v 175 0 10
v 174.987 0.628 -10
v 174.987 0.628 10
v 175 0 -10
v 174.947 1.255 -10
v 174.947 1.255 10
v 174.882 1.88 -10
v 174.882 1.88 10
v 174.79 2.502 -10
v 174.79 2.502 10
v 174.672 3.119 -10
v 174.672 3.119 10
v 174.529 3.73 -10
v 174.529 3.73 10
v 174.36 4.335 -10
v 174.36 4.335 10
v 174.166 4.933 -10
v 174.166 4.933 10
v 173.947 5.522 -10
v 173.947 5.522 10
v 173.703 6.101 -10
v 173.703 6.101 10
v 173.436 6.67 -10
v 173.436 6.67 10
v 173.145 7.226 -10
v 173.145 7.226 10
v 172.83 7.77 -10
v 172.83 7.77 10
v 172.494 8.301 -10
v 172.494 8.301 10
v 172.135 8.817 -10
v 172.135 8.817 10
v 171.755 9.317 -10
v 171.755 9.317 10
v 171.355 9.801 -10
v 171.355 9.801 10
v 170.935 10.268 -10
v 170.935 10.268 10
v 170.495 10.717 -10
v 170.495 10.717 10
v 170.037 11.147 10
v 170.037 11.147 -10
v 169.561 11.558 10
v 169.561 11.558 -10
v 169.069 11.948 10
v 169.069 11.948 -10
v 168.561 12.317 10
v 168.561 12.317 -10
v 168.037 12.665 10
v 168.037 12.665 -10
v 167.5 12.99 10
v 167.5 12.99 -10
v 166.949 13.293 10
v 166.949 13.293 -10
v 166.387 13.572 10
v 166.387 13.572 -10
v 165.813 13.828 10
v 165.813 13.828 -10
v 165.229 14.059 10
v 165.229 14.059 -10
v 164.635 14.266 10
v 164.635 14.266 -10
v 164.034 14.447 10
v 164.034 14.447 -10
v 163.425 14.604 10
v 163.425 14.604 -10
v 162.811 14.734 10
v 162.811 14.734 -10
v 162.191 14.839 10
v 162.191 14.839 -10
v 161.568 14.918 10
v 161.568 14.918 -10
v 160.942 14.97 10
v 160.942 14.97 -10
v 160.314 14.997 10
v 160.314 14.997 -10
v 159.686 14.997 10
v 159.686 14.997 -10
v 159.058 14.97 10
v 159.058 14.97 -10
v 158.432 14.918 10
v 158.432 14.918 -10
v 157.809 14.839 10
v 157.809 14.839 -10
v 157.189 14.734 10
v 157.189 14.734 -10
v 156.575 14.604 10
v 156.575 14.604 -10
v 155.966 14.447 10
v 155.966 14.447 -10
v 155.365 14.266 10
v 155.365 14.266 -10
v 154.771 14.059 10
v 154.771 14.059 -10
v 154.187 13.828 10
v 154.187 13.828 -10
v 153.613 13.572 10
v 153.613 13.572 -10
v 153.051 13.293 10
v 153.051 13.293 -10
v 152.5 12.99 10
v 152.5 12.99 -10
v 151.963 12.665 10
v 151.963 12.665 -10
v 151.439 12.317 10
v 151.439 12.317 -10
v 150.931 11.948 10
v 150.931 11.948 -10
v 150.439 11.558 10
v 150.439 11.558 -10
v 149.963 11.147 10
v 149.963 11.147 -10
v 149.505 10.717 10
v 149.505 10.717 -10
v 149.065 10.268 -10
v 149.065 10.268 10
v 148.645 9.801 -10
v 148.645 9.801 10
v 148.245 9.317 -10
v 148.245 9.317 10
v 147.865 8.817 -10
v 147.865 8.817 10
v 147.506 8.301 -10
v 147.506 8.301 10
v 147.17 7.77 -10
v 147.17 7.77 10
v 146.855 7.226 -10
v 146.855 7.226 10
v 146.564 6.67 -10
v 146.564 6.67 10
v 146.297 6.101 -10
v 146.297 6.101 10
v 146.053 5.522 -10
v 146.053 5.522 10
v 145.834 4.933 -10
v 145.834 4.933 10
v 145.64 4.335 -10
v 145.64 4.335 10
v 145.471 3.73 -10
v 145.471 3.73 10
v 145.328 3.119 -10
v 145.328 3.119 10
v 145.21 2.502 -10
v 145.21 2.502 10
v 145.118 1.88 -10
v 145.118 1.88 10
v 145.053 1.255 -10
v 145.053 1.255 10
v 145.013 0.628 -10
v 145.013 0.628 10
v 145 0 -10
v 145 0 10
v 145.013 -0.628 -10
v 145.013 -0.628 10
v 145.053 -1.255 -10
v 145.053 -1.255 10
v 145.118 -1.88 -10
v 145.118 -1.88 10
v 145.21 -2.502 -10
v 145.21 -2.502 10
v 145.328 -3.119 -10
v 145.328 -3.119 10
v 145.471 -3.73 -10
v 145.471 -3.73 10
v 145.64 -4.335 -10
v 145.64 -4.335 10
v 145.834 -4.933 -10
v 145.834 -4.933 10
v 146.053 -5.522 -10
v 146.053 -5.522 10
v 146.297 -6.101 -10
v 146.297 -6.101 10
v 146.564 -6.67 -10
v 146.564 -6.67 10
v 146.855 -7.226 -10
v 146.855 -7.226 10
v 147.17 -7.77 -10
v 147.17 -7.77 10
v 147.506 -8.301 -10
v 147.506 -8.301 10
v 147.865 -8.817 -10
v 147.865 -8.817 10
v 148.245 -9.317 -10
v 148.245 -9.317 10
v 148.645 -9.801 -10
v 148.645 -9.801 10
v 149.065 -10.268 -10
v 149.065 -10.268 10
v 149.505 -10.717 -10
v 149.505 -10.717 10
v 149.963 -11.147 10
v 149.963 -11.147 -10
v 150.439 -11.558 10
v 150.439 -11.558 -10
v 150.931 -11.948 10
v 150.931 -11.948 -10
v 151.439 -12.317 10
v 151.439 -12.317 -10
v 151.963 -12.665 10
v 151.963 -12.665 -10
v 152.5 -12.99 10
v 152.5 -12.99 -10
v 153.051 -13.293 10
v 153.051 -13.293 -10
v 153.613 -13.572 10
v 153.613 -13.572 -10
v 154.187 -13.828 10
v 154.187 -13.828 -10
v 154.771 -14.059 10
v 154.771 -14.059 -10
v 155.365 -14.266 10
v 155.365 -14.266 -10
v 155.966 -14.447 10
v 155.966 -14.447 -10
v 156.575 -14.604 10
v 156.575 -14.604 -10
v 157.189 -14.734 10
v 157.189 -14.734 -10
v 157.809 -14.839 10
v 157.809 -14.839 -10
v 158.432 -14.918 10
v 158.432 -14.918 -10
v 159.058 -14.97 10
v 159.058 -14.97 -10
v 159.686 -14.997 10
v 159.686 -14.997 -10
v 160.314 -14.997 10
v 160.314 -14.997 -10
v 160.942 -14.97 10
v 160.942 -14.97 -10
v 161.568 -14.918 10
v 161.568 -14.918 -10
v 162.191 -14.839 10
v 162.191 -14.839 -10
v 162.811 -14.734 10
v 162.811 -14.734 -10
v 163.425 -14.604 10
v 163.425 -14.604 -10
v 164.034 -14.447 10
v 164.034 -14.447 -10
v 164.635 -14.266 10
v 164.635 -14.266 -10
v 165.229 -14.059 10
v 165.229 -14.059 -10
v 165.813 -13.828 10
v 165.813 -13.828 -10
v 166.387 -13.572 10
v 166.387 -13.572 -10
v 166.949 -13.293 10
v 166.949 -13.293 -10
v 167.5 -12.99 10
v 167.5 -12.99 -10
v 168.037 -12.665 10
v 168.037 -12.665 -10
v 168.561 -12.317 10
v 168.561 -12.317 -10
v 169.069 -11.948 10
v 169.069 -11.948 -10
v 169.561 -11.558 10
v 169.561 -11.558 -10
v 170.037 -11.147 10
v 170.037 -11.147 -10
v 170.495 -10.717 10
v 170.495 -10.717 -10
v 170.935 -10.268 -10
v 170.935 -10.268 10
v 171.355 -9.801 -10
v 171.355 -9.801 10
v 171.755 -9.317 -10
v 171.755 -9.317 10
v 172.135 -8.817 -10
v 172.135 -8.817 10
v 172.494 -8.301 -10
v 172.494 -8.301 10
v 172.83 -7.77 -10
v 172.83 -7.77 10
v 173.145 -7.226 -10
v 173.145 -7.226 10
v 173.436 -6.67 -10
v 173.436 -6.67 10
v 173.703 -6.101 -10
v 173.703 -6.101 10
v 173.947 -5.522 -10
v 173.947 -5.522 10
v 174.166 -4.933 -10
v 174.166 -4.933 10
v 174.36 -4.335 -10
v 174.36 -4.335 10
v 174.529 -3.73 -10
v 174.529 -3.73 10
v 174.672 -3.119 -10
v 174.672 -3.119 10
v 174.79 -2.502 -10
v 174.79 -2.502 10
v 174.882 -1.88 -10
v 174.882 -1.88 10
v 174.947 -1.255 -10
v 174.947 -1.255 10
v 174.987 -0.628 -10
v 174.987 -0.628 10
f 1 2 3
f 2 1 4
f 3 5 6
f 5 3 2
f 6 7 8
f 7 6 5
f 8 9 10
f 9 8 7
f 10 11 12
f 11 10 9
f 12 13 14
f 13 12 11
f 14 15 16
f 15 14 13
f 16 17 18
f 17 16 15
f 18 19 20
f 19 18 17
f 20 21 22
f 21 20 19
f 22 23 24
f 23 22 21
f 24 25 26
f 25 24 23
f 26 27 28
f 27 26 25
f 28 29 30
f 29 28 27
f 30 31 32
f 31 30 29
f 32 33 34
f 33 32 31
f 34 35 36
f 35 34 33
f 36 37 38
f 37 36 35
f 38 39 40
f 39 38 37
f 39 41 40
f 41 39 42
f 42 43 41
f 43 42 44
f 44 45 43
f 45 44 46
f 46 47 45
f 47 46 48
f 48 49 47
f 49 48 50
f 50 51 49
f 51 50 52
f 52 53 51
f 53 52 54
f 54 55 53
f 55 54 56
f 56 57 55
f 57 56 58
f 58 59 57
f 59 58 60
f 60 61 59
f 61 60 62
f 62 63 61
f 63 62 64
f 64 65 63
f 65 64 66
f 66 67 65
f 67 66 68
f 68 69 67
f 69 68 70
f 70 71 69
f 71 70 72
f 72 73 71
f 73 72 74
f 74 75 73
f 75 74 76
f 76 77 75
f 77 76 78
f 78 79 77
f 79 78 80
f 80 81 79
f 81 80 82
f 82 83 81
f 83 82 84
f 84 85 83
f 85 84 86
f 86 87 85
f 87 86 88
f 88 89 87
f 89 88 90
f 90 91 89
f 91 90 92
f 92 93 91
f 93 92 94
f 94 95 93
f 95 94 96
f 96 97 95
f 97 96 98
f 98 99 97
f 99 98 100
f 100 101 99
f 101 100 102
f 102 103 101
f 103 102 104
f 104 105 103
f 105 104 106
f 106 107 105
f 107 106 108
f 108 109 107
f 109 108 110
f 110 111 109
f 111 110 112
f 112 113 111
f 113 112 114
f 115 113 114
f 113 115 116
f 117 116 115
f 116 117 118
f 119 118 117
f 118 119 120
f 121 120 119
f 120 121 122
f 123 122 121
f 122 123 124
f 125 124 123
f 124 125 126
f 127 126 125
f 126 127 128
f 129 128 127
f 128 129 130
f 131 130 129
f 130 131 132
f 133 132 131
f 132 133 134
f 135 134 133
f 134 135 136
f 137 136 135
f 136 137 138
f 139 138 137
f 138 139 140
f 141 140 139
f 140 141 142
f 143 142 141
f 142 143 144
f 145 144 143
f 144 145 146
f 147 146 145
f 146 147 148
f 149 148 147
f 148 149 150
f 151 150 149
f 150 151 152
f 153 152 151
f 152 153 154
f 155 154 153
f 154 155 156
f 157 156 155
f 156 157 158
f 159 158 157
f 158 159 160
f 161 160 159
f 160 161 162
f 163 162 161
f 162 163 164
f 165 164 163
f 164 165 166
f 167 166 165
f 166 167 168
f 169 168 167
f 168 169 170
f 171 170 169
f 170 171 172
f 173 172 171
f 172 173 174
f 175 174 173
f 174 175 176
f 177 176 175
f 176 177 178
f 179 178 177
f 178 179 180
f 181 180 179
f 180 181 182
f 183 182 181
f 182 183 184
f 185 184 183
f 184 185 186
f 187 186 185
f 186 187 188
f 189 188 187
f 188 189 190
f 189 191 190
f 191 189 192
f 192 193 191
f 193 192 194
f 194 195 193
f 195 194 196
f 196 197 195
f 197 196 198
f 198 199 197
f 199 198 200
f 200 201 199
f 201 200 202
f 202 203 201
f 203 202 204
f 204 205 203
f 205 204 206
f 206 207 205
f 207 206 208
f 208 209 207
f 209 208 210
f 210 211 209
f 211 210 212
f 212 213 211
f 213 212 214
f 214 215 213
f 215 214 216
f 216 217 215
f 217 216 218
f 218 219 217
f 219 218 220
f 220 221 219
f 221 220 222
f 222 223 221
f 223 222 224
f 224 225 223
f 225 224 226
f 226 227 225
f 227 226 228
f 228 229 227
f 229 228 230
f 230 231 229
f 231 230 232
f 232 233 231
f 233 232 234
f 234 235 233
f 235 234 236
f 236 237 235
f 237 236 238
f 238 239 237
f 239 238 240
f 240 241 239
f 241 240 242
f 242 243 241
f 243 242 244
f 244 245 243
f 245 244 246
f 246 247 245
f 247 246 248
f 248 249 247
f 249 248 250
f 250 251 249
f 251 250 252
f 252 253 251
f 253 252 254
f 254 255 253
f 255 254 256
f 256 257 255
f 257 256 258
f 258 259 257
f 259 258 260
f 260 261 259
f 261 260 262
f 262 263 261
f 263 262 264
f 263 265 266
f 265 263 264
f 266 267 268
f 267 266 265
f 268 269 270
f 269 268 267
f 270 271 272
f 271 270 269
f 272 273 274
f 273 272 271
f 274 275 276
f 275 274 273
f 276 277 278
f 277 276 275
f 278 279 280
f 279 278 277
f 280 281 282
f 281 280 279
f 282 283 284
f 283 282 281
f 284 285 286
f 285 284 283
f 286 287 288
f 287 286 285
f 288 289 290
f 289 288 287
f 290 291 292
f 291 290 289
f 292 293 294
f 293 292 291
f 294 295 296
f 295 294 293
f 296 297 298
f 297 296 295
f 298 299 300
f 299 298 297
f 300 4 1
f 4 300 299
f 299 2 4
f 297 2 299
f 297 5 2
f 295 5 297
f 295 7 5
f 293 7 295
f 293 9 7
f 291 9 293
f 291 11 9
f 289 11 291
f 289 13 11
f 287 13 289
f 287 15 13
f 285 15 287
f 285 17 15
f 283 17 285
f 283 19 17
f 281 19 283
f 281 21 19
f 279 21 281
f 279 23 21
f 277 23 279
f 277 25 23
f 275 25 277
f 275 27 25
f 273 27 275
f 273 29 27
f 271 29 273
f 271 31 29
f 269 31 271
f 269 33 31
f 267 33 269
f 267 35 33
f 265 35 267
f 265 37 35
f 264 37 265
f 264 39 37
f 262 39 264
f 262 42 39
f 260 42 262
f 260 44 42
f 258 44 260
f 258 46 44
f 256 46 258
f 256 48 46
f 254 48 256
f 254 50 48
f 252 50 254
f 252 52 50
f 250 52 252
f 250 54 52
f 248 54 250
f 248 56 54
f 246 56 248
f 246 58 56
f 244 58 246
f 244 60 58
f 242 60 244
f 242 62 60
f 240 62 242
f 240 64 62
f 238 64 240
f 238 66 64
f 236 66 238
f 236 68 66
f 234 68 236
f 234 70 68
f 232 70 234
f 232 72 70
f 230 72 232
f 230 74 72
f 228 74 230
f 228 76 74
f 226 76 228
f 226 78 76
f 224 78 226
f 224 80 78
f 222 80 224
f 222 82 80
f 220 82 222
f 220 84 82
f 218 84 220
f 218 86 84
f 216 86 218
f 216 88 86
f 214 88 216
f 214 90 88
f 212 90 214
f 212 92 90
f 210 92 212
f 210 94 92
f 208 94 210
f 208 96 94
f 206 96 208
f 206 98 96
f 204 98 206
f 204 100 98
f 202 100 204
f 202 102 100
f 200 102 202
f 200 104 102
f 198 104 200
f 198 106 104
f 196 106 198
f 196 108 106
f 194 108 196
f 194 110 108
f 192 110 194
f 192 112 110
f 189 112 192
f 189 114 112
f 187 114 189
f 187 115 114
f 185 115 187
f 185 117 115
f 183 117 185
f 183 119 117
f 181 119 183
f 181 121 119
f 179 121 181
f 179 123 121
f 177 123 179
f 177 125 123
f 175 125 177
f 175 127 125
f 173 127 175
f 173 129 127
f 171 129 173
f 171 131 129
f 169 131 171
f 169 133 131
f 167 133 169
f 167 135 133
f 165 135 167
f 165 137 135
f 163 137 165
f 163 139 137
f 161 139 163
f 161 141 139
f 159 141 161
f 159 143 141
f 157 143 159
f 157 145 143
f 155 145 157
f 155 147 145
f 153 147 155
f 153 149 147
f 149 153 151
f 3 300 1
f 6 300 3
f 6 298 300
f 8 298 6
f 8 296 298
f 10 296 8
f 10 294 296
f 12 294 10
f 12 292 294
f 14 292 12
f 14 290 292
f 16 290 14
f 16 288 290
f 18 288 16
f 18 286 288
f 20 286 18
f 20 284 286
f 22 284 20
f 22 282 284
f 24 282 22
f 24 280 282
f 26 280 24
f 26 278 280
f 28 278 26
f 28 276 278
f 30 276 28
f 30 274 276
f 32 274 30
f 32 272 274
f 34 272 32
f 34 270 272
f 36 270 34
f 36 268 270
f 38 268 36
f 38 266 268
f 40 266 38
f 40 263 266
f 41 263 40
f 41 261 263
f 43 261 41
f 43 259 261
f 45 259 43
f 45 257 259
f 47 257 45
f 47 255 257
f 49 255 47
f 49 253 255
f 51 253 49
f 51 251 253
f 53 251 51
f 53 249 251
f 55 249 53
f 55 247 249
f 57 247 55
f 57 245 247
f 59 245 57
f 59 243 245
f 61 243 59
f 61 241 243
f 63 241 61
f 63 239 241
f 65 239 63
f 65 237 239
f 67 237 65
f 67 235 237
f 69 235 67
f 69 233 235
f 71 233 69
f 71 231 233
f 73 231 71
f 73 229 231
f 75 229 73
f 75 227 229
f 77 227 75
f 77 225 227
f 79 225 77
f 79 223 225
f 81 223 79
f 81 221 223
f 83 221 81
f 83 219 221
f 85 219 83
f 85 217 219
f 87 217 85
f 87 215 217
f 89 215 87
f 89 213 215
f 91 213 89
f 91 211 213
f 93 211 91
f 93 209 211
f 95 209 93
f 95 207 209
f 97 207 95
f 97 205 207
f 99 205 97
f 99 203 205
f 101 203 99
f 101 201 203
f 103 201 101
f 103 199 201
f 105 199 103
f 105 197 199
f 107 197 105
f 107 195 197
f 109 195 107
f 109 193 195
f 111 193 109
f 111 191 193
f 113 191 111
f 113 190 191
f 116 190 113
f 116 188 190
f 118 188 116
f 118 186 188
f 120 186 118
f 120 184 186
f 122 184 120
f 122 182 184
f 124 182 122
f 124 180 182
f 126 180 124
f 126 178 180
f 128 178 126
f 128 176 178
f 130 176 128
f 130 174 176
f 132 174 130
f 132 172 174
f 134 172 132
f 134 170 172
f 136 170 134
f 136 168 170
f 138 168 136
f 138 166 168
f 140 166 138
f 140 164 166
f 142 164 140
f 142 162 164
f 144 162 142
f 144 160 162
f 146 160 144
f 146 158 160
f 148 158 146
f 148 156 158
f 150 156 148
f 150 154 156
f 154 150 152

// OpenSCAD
$fn = 150;

translate([160, 0, 0])
rotate([0, 0, 0])
cylinder(20, 15, 15, true);
